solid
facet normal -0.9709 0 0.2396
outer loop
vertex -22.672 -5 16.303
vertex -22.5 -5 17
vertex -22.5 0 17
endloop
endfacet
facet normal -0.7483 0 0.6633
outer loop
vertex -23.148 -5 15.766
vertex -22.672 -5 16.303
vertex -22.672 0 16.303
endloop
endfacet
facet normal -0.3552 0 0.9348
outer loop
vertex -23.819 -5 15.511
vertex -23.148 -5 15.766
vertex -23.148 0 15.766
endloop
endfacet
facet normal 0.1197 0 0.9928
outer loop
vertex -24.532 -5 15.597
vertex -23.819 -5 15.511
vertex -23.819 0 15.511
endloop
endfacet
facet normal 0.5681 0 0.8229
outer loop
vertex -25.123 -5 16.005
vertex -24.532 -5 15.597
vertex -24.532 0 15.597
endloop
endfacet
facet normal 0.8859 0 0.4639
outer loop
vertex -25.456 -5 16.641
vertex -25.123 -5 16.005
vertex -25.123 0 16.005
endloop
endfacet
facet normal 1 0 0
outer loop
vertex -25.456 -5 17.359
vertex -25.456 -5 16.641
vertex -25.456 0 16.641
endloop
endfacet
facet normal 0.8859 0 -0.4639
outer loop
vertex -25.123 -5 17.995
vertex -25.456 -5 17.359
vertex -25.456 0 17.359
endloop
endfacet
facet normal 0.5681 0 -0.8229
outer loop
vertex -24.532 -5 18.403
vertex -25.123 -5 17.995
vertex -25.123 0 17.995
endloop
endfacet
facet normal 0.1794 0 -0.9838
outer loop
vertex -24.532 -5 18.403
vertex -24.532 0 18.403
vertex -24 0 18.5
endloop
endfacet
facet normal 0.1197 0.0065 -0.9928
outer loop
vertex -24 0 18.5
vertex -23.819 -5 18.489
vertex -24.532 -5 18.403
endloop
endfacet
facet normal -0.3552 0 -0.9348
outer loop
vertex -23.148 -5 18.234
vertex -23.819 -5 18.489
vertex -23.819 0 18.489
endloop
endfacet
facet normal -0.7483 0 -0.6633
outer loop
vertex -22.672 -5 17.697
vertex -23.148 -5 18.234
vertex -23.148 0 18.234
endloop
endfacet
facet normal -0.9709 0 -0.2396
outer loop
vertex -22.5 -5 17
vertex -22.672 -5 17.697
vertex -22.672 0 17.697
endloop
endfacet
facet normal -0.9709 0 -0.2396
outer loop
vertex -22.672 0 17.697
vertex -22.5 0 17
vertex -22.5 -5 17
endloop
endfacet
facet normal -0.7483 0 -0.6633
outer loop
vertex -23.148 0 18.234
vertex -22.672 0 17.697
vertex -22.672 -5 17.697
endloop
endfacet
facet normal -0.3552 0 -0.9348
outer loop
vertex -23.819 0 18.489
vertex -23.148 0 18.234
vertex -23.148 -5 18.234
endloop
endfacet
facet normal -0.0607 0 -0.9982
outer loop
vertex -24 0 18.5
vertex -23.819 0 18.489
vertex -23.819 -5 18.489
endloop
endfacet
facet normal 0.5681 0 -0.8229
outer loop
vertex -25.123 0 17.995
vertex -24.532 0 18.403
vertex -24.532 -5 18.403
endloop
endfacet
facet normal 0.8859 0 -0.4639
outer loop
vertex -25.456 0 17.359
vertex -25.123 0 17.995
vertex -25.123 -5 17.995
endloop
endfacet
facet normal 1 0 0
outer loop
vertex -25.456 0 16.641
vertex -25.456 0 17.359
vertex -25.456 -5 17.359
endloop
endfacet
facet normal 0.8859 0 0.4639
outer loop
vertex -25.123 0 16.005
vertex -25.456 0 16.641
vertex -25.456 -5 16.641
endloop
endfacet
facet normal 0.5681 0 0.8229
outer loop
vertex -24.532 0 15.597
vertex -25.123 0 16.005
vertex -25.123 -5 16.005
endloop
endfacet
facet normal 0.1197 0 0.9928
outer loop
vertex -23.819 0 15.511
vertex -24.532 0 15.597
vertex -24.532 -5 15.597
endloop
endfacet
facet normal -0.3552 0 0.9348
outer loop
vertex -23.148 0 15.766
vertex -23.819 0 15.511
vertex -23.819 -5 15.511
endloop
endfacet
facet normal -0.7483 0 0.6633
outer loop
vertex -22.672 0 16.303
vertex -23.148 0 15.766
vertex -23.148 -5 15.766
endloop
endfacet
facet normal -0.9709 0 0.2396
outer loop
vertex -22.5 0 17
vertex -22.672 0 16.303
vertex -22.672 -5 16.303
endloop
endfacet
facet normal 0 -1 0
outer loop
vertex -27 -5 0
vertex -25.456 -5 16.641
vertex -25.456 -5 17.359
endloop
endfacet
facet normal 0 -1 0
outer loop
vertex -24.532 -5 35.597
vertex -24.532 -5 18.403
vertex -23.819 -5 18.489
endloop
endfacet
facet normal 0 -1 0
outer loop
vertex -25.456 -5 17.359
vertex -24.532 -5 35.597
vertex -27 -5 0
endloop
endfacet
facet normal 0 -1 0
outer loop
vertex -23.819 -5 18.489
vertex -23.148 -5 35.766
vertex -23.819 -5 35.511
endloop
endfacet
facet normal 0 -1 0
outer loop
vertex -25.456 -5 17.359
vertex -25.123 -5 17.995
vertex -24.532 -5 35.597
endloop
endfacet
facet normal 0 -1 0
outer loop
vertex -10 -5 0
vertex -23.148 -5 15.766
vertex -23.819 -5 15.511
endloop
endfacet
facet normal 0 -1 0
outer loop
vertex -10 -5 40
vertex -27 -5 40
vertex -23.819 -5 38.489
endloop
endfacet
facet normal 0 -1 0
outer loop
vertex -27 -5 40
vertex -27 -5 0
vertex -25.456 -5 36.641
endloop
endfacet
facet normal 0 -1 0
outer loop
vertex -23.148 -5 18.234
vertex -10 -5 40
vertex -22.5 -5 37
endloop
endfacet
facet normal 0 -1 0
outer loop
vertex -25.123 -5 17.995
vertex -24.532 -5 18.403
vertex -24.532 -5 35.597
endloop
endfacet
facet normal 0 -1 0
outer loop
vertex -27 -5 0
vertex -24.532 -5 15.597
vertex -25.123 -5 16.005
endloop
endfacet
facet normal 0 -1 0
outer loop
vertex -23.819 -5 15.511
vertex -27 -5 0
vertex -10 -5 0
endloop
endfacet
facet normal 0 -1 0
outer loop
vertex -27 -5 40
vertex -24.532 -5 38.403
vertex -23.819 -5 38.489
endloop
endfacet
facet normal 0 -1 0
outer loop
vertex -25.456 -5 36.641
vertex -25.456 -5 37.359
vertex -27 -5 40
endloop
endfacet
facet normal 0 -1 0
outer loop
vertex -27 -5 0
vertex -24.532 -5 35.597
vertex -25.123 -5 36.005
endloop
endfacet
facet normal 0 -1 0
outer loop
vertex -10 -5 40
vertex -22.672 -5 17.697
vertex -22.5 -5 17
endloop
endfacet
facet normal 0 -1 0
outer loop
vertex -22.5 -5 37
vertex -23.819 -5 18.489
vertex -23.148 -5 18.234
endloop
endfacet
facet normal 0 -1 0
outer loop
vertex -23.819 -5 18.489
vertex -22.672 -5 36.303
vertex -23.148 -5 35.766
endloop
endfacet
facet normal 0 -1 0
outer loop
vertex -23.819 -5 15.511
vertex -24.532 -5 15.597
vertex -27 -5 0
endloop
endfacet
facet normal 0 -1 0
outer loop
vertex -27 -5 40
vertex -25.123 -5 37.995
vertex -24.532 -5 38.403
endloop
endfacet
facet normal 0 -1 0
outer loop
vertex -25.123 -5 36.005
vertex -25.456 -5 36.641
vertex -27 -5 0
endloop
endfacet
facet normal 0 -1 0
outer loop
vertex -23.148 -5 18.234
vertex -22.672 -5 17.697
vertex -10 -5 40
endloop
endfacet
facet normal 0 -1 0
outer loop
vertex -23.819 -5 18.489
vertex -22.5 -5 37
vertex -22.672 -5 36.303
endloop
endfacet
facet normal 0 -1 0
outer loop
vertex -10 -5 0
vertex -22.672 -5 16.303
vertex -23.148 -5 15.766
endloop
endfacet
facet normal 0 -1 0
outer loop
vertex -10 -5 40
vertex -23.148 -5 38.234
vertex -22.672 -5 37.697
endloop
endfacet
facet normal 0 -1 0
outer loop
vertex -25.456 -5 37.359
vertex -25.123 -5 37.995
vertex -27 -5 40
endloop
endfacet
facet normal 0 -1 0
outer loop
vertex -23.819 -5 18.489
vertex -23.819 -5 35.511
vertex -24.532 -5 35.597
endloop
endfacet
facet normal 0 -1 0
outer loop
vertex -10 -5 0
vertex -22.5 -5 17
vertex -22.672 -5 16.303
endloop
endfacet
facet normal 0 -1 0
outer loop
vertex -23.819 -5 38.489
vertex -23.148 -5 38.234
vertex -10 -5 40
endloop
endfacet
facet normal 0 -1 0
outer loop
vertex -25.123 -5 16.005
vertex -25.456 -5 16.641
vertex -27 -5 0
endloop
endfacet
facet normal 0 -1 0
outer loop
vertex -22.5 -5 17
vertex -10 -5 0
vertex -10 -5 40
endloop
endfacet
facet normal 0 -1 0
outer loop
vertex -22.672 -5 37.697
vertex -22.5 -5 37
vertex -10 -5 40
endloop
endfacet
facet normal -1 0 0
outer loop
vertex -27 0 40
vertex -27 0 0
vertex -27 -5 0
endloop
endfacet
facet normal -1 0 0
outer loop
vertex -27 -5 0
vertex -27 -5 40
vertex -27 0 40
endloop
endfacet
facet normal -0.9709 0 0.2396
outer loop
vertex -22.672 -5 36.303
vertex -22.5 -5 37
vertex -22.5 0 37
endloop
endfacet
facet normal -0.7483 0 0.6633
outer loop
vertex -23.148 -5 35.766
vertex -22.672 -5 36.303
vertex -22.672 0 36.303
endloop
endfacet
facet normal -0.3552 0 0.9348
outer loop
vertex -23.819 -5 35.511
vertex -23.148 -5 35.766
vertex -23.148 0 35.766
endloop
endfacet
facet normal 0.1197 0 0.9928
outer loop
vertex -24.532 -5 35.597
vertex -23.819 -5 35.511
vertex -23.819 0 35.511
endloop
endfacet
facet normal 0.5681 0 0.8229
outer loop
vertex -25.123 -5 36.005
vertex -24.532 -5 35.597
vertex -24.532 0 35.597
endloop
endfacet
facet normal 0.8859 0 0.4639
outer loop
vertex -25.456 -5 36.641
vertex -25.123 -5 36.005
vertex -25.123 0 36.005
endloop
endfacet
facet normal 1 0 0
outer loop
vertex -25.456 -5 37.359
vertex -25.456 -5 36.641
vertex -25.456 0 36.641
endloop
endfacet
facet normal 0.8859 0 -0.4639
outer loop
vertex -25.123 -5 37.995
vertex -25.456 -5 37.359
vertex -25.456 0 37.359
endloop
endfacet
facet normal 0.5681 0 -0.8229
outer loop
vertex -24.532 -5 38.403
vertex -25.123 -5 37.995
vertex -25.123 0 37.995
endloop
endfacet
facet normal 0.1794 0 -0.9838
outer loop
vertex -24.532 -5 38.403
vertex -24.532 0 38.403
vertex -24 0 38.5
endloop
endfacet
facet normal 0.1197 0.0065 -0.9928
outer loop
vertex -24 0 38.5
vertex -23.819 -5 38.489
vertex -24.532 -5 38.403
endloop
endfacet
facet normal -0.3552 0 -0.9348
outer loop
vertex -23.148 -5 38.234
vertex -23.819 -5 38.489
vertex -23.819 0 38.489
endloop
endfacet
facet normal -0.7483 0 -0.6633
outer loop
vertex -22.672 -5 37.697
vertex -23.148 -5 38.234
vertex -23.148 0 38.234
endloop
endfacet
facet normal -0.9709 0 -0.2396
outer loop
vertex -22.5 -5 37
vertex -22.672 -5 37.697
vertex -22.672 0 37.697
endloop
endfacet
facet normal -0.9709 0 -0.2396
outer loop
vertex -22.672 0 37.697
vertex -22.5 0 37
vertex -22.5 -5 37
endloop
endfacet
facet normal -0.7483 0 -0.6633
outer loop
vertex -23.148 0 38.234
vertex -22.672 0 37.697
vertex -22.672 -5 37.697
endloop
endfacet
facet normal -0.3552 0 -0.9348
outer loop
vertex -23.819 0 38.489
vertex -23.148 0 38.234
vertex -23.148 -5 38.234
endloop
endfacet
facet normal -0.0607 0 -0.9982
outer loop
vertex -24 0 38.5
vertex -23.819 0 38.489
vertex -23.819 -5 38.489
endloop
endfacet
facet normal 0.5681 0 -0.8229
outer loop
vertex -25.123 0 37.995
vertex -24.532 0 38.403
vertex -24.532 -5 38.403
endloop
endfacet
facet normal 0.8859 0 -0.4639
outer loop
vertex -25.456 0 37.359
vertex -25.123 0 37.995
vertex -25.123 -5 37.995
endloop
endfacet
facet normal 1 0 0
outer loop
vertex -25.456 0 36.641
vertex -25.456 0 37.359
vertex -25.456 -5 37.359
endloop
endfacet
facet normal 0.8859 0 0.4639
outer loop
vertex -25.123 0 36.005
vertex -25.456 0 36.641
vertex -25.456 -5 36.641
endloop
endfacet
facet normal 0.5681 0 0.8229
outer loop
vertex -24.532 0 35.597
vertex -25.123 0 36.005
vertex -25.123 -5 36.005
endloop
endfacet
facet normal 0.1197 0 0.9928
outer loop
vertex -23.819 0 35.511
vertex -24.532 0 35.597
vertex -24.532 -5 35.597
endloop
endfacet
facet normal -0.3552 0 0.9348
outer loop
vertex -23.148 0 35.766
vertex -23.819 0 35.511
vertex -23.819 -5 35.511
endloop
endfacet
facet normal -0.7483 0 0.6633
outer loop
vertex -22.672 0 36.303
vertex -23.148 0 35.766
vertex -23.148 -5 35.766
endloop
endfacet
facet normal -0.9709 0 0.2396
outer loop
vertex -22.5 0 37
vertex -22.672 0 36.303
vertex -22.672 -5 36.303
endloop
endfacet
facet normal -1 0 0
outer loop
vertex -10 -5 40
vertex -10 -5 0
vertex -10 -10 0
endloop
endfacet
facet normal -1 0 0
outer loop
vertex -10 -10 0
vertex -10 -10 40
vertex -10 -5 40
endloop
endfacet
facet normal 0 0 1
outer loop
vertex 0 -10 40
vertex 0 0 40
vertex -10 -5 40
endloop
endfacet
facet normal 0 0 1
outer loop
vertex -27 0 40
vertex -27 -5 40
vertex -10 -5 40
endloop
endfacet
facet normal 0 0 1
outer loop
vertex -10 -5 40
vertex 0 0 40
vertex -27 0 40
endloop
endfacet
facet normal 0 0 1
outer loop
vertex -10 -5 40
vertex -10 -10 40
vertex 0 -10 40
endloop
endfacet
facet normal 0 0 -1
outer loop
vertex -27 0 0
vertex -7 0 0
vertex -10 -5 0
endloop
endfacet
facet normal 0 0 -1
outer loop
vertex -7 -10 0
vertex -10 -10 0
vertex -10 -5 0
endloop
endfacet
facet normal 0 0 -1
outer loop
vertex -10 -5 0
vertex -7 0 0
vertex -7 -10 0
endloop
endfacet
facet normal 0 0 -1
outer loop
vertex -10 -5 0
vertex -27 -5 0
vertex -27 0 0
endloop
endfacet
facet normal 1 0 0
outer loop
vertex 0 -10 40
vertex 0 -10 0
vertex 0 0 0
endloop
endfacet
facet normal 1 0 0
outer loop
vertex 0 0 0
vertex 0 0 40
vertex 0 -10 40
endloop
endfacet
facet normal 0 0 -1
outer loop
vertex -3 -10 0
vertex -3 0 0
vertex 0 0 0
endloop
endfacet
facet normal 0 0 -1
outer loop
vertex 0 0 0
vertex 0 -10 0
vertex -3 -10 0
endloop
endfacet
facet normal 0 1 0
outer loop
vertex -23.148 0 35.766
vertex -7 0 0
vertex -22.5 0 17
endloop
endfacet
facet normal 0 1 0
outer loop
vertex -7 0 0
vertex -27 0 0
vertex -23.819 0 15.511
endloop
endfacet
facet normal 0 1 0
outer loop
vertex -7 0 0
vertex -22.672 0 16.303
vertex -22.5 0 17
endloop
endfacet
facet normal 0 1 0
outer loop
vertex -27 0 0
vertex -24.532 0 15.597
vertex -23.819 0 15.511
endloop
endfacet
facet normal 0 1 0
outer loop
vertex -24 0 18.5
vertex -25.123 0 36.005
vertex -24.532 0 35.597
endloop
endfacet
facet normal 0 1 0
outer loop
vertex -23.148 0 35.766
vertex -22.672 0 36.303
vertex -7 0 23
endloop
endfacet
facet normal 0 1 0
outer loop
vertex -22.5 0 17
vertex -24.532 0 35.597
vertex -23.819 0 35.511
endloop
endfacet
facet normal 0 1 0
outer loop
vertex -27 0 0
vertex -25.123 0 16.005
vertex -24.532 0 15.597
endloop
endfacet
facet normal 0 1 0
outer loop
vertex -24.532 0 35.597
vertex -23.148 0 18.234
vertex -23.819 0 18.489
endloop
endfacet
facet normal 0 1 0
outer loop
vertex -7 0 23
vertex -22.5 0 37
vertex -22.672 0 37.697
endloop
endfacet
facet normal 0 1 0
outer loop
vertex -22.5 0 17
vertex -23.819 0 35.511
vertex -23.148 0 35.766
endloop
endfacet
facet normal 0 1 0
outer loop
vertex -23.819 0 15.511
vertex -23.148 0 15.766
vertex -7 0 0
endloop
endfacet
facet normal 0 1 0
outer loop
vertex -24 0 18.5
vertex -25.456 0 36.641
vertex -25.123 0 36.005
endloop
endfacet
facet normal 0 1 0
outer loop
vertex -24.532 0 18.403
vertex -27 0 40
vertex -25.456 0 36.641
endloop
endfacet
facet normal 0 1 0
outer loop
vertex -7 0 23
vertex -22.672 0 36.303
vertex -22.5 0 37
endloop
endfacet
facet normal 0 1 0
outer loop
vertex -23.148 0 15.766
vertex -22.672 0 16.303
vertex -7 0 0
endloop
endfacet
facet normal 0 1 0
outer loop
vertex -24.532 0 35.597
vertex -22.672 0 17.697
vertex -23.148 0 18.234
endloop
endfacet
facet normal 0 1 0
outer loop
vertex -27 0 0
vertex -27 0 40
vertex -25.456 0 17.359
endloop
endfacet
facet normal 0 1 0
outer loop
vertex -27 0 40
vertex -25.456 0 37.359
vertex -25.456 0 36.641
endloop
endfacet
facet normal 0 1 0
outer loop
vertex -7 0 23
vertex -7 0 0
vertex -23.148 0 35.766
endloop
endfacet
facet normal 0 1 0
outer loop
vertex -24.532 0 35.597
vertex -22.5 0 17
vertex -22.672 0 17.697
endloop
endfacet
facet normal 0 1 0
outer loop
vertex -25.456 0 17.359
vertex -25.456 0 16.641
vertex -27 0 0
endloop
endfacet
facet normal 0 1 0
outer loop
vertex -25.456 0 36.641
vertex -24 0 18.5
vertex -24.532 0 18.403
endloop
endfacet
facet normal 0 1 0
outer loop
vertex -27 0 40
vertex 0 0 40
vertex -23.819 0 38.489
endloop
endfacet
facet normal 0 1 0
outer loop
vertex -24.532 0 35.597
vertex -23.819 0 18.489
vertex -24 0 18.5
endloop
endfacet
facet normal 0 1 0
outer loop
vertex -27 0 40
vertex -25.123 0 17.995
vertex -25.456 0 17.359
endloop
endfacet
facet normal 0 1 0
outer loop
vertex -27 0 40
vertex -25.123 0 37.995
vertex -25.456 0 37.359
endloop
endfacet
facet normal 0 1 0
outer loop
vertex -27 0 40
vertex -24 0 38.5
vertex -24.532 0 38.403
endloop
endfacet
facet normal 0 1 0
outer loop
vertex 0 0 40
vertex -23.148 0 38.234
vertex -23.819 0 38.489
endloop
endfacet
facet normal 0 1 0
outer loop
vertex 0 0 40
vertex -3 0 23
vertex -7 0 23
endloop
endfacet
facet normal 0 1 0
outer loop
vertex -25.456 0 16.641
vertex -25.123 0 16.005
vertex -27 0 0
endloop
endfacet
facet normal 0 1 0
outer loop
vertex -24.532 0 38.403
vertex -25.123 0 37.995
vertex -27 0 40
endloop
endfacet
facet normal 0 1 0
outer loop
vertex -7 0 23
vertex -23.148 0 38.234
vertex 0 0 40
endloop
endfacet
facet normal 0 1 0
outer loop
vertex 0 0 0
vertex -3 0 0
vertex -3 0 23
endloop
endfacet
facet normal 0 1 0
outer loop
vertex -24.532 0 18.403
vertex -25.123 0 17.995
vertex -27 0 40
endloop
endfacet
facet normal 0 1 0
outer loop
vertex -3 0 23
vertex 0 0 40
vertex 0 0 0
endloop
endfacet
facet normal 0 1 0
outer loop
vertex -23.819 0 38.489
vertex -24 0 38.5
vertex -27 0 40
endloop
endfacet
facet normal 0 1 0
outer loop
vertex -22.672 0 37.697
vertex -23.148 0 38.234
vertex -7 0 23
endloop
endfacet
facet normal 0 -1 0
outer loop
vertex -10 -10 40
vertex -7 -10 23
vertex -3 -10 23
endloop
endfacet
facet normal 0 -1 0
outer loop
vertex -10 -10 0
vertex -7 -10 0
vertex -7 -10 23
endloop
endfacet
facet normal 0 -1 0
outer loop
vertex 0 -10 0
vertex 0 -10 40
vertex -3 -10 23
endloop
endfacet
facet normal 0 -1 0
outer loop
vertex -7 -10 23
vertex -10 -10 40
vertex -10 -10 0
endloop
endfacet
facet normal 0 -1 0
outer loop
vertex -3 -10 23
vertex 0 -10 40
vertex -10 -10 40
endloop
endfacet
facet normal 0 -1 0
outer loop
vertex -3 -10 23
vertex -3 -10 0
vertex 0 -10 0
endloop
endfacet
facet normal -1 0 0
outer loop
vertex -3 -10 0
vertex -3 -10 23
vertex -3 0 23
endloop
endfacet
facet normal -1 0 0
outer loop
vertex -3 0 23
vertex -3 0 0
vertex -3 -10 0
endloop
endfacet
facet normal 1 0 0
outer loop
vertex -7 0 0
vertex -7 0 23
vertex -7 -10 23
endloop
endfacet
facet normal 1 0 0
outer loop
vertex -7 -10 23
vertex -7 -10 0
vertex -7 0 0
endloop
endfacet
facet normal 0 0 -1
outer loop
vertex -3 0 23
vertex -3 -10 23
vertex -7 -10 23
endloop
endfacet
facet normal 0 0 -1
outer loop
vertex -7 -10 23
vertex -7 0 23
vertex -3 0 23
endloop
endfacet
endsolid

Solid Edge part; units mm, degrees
sketch "Sketch1" plane through (0, 0, 0) normal (0, 0, 1) x (1, 0, 0)
  line L0 (-10, -5) -> (-27, -5)
  line L1 (-27, -5) -> (-27, 0)
  line L2 (-27, 0) -> (0, 0)
  line L3 (0, 0) -> (0, -10)
  line L4 (0, -10) -> (-10, -10)
  line L5 (-10, -10) -> (-10, -5)
extrude "Protrusion1" add sketch "Sketch1" along normal blind 40
sketch "Sketch2" plane through (-5, -10, 20) normal (0, -1, 0) x (1, 0, 0)
  line L0 (2, -20) -> (-2, -20)
  line L1 (-2, -20) -> (-2, 3)
  line L2 (-2, 3) -> (2, 3)
  line L3 (2, 3) -> (2, -20)
  dimension "D1" = 17
extrude "VaciadoExtruido_1" cut sketch "Sketch2" against normal blind 50.2328
sketch "Sketch3" plane through (-18.5, -5, 20) normal (0, -1, 0) x (1, 0, 0)
  circle A0 centre (-5.5, 17) radius 1.5
  circle A1 centre (-5.5, -3) radius 1.5
  dimension "D1" = 3
  dimension "D2" = 3
  dimension "D3" = 3
  dimension "D4" = 3
  dimension "D5" = 20
extrude "VaciadoExtruido_2" cut sketch "Sketch3" against normal blind 58.7428
